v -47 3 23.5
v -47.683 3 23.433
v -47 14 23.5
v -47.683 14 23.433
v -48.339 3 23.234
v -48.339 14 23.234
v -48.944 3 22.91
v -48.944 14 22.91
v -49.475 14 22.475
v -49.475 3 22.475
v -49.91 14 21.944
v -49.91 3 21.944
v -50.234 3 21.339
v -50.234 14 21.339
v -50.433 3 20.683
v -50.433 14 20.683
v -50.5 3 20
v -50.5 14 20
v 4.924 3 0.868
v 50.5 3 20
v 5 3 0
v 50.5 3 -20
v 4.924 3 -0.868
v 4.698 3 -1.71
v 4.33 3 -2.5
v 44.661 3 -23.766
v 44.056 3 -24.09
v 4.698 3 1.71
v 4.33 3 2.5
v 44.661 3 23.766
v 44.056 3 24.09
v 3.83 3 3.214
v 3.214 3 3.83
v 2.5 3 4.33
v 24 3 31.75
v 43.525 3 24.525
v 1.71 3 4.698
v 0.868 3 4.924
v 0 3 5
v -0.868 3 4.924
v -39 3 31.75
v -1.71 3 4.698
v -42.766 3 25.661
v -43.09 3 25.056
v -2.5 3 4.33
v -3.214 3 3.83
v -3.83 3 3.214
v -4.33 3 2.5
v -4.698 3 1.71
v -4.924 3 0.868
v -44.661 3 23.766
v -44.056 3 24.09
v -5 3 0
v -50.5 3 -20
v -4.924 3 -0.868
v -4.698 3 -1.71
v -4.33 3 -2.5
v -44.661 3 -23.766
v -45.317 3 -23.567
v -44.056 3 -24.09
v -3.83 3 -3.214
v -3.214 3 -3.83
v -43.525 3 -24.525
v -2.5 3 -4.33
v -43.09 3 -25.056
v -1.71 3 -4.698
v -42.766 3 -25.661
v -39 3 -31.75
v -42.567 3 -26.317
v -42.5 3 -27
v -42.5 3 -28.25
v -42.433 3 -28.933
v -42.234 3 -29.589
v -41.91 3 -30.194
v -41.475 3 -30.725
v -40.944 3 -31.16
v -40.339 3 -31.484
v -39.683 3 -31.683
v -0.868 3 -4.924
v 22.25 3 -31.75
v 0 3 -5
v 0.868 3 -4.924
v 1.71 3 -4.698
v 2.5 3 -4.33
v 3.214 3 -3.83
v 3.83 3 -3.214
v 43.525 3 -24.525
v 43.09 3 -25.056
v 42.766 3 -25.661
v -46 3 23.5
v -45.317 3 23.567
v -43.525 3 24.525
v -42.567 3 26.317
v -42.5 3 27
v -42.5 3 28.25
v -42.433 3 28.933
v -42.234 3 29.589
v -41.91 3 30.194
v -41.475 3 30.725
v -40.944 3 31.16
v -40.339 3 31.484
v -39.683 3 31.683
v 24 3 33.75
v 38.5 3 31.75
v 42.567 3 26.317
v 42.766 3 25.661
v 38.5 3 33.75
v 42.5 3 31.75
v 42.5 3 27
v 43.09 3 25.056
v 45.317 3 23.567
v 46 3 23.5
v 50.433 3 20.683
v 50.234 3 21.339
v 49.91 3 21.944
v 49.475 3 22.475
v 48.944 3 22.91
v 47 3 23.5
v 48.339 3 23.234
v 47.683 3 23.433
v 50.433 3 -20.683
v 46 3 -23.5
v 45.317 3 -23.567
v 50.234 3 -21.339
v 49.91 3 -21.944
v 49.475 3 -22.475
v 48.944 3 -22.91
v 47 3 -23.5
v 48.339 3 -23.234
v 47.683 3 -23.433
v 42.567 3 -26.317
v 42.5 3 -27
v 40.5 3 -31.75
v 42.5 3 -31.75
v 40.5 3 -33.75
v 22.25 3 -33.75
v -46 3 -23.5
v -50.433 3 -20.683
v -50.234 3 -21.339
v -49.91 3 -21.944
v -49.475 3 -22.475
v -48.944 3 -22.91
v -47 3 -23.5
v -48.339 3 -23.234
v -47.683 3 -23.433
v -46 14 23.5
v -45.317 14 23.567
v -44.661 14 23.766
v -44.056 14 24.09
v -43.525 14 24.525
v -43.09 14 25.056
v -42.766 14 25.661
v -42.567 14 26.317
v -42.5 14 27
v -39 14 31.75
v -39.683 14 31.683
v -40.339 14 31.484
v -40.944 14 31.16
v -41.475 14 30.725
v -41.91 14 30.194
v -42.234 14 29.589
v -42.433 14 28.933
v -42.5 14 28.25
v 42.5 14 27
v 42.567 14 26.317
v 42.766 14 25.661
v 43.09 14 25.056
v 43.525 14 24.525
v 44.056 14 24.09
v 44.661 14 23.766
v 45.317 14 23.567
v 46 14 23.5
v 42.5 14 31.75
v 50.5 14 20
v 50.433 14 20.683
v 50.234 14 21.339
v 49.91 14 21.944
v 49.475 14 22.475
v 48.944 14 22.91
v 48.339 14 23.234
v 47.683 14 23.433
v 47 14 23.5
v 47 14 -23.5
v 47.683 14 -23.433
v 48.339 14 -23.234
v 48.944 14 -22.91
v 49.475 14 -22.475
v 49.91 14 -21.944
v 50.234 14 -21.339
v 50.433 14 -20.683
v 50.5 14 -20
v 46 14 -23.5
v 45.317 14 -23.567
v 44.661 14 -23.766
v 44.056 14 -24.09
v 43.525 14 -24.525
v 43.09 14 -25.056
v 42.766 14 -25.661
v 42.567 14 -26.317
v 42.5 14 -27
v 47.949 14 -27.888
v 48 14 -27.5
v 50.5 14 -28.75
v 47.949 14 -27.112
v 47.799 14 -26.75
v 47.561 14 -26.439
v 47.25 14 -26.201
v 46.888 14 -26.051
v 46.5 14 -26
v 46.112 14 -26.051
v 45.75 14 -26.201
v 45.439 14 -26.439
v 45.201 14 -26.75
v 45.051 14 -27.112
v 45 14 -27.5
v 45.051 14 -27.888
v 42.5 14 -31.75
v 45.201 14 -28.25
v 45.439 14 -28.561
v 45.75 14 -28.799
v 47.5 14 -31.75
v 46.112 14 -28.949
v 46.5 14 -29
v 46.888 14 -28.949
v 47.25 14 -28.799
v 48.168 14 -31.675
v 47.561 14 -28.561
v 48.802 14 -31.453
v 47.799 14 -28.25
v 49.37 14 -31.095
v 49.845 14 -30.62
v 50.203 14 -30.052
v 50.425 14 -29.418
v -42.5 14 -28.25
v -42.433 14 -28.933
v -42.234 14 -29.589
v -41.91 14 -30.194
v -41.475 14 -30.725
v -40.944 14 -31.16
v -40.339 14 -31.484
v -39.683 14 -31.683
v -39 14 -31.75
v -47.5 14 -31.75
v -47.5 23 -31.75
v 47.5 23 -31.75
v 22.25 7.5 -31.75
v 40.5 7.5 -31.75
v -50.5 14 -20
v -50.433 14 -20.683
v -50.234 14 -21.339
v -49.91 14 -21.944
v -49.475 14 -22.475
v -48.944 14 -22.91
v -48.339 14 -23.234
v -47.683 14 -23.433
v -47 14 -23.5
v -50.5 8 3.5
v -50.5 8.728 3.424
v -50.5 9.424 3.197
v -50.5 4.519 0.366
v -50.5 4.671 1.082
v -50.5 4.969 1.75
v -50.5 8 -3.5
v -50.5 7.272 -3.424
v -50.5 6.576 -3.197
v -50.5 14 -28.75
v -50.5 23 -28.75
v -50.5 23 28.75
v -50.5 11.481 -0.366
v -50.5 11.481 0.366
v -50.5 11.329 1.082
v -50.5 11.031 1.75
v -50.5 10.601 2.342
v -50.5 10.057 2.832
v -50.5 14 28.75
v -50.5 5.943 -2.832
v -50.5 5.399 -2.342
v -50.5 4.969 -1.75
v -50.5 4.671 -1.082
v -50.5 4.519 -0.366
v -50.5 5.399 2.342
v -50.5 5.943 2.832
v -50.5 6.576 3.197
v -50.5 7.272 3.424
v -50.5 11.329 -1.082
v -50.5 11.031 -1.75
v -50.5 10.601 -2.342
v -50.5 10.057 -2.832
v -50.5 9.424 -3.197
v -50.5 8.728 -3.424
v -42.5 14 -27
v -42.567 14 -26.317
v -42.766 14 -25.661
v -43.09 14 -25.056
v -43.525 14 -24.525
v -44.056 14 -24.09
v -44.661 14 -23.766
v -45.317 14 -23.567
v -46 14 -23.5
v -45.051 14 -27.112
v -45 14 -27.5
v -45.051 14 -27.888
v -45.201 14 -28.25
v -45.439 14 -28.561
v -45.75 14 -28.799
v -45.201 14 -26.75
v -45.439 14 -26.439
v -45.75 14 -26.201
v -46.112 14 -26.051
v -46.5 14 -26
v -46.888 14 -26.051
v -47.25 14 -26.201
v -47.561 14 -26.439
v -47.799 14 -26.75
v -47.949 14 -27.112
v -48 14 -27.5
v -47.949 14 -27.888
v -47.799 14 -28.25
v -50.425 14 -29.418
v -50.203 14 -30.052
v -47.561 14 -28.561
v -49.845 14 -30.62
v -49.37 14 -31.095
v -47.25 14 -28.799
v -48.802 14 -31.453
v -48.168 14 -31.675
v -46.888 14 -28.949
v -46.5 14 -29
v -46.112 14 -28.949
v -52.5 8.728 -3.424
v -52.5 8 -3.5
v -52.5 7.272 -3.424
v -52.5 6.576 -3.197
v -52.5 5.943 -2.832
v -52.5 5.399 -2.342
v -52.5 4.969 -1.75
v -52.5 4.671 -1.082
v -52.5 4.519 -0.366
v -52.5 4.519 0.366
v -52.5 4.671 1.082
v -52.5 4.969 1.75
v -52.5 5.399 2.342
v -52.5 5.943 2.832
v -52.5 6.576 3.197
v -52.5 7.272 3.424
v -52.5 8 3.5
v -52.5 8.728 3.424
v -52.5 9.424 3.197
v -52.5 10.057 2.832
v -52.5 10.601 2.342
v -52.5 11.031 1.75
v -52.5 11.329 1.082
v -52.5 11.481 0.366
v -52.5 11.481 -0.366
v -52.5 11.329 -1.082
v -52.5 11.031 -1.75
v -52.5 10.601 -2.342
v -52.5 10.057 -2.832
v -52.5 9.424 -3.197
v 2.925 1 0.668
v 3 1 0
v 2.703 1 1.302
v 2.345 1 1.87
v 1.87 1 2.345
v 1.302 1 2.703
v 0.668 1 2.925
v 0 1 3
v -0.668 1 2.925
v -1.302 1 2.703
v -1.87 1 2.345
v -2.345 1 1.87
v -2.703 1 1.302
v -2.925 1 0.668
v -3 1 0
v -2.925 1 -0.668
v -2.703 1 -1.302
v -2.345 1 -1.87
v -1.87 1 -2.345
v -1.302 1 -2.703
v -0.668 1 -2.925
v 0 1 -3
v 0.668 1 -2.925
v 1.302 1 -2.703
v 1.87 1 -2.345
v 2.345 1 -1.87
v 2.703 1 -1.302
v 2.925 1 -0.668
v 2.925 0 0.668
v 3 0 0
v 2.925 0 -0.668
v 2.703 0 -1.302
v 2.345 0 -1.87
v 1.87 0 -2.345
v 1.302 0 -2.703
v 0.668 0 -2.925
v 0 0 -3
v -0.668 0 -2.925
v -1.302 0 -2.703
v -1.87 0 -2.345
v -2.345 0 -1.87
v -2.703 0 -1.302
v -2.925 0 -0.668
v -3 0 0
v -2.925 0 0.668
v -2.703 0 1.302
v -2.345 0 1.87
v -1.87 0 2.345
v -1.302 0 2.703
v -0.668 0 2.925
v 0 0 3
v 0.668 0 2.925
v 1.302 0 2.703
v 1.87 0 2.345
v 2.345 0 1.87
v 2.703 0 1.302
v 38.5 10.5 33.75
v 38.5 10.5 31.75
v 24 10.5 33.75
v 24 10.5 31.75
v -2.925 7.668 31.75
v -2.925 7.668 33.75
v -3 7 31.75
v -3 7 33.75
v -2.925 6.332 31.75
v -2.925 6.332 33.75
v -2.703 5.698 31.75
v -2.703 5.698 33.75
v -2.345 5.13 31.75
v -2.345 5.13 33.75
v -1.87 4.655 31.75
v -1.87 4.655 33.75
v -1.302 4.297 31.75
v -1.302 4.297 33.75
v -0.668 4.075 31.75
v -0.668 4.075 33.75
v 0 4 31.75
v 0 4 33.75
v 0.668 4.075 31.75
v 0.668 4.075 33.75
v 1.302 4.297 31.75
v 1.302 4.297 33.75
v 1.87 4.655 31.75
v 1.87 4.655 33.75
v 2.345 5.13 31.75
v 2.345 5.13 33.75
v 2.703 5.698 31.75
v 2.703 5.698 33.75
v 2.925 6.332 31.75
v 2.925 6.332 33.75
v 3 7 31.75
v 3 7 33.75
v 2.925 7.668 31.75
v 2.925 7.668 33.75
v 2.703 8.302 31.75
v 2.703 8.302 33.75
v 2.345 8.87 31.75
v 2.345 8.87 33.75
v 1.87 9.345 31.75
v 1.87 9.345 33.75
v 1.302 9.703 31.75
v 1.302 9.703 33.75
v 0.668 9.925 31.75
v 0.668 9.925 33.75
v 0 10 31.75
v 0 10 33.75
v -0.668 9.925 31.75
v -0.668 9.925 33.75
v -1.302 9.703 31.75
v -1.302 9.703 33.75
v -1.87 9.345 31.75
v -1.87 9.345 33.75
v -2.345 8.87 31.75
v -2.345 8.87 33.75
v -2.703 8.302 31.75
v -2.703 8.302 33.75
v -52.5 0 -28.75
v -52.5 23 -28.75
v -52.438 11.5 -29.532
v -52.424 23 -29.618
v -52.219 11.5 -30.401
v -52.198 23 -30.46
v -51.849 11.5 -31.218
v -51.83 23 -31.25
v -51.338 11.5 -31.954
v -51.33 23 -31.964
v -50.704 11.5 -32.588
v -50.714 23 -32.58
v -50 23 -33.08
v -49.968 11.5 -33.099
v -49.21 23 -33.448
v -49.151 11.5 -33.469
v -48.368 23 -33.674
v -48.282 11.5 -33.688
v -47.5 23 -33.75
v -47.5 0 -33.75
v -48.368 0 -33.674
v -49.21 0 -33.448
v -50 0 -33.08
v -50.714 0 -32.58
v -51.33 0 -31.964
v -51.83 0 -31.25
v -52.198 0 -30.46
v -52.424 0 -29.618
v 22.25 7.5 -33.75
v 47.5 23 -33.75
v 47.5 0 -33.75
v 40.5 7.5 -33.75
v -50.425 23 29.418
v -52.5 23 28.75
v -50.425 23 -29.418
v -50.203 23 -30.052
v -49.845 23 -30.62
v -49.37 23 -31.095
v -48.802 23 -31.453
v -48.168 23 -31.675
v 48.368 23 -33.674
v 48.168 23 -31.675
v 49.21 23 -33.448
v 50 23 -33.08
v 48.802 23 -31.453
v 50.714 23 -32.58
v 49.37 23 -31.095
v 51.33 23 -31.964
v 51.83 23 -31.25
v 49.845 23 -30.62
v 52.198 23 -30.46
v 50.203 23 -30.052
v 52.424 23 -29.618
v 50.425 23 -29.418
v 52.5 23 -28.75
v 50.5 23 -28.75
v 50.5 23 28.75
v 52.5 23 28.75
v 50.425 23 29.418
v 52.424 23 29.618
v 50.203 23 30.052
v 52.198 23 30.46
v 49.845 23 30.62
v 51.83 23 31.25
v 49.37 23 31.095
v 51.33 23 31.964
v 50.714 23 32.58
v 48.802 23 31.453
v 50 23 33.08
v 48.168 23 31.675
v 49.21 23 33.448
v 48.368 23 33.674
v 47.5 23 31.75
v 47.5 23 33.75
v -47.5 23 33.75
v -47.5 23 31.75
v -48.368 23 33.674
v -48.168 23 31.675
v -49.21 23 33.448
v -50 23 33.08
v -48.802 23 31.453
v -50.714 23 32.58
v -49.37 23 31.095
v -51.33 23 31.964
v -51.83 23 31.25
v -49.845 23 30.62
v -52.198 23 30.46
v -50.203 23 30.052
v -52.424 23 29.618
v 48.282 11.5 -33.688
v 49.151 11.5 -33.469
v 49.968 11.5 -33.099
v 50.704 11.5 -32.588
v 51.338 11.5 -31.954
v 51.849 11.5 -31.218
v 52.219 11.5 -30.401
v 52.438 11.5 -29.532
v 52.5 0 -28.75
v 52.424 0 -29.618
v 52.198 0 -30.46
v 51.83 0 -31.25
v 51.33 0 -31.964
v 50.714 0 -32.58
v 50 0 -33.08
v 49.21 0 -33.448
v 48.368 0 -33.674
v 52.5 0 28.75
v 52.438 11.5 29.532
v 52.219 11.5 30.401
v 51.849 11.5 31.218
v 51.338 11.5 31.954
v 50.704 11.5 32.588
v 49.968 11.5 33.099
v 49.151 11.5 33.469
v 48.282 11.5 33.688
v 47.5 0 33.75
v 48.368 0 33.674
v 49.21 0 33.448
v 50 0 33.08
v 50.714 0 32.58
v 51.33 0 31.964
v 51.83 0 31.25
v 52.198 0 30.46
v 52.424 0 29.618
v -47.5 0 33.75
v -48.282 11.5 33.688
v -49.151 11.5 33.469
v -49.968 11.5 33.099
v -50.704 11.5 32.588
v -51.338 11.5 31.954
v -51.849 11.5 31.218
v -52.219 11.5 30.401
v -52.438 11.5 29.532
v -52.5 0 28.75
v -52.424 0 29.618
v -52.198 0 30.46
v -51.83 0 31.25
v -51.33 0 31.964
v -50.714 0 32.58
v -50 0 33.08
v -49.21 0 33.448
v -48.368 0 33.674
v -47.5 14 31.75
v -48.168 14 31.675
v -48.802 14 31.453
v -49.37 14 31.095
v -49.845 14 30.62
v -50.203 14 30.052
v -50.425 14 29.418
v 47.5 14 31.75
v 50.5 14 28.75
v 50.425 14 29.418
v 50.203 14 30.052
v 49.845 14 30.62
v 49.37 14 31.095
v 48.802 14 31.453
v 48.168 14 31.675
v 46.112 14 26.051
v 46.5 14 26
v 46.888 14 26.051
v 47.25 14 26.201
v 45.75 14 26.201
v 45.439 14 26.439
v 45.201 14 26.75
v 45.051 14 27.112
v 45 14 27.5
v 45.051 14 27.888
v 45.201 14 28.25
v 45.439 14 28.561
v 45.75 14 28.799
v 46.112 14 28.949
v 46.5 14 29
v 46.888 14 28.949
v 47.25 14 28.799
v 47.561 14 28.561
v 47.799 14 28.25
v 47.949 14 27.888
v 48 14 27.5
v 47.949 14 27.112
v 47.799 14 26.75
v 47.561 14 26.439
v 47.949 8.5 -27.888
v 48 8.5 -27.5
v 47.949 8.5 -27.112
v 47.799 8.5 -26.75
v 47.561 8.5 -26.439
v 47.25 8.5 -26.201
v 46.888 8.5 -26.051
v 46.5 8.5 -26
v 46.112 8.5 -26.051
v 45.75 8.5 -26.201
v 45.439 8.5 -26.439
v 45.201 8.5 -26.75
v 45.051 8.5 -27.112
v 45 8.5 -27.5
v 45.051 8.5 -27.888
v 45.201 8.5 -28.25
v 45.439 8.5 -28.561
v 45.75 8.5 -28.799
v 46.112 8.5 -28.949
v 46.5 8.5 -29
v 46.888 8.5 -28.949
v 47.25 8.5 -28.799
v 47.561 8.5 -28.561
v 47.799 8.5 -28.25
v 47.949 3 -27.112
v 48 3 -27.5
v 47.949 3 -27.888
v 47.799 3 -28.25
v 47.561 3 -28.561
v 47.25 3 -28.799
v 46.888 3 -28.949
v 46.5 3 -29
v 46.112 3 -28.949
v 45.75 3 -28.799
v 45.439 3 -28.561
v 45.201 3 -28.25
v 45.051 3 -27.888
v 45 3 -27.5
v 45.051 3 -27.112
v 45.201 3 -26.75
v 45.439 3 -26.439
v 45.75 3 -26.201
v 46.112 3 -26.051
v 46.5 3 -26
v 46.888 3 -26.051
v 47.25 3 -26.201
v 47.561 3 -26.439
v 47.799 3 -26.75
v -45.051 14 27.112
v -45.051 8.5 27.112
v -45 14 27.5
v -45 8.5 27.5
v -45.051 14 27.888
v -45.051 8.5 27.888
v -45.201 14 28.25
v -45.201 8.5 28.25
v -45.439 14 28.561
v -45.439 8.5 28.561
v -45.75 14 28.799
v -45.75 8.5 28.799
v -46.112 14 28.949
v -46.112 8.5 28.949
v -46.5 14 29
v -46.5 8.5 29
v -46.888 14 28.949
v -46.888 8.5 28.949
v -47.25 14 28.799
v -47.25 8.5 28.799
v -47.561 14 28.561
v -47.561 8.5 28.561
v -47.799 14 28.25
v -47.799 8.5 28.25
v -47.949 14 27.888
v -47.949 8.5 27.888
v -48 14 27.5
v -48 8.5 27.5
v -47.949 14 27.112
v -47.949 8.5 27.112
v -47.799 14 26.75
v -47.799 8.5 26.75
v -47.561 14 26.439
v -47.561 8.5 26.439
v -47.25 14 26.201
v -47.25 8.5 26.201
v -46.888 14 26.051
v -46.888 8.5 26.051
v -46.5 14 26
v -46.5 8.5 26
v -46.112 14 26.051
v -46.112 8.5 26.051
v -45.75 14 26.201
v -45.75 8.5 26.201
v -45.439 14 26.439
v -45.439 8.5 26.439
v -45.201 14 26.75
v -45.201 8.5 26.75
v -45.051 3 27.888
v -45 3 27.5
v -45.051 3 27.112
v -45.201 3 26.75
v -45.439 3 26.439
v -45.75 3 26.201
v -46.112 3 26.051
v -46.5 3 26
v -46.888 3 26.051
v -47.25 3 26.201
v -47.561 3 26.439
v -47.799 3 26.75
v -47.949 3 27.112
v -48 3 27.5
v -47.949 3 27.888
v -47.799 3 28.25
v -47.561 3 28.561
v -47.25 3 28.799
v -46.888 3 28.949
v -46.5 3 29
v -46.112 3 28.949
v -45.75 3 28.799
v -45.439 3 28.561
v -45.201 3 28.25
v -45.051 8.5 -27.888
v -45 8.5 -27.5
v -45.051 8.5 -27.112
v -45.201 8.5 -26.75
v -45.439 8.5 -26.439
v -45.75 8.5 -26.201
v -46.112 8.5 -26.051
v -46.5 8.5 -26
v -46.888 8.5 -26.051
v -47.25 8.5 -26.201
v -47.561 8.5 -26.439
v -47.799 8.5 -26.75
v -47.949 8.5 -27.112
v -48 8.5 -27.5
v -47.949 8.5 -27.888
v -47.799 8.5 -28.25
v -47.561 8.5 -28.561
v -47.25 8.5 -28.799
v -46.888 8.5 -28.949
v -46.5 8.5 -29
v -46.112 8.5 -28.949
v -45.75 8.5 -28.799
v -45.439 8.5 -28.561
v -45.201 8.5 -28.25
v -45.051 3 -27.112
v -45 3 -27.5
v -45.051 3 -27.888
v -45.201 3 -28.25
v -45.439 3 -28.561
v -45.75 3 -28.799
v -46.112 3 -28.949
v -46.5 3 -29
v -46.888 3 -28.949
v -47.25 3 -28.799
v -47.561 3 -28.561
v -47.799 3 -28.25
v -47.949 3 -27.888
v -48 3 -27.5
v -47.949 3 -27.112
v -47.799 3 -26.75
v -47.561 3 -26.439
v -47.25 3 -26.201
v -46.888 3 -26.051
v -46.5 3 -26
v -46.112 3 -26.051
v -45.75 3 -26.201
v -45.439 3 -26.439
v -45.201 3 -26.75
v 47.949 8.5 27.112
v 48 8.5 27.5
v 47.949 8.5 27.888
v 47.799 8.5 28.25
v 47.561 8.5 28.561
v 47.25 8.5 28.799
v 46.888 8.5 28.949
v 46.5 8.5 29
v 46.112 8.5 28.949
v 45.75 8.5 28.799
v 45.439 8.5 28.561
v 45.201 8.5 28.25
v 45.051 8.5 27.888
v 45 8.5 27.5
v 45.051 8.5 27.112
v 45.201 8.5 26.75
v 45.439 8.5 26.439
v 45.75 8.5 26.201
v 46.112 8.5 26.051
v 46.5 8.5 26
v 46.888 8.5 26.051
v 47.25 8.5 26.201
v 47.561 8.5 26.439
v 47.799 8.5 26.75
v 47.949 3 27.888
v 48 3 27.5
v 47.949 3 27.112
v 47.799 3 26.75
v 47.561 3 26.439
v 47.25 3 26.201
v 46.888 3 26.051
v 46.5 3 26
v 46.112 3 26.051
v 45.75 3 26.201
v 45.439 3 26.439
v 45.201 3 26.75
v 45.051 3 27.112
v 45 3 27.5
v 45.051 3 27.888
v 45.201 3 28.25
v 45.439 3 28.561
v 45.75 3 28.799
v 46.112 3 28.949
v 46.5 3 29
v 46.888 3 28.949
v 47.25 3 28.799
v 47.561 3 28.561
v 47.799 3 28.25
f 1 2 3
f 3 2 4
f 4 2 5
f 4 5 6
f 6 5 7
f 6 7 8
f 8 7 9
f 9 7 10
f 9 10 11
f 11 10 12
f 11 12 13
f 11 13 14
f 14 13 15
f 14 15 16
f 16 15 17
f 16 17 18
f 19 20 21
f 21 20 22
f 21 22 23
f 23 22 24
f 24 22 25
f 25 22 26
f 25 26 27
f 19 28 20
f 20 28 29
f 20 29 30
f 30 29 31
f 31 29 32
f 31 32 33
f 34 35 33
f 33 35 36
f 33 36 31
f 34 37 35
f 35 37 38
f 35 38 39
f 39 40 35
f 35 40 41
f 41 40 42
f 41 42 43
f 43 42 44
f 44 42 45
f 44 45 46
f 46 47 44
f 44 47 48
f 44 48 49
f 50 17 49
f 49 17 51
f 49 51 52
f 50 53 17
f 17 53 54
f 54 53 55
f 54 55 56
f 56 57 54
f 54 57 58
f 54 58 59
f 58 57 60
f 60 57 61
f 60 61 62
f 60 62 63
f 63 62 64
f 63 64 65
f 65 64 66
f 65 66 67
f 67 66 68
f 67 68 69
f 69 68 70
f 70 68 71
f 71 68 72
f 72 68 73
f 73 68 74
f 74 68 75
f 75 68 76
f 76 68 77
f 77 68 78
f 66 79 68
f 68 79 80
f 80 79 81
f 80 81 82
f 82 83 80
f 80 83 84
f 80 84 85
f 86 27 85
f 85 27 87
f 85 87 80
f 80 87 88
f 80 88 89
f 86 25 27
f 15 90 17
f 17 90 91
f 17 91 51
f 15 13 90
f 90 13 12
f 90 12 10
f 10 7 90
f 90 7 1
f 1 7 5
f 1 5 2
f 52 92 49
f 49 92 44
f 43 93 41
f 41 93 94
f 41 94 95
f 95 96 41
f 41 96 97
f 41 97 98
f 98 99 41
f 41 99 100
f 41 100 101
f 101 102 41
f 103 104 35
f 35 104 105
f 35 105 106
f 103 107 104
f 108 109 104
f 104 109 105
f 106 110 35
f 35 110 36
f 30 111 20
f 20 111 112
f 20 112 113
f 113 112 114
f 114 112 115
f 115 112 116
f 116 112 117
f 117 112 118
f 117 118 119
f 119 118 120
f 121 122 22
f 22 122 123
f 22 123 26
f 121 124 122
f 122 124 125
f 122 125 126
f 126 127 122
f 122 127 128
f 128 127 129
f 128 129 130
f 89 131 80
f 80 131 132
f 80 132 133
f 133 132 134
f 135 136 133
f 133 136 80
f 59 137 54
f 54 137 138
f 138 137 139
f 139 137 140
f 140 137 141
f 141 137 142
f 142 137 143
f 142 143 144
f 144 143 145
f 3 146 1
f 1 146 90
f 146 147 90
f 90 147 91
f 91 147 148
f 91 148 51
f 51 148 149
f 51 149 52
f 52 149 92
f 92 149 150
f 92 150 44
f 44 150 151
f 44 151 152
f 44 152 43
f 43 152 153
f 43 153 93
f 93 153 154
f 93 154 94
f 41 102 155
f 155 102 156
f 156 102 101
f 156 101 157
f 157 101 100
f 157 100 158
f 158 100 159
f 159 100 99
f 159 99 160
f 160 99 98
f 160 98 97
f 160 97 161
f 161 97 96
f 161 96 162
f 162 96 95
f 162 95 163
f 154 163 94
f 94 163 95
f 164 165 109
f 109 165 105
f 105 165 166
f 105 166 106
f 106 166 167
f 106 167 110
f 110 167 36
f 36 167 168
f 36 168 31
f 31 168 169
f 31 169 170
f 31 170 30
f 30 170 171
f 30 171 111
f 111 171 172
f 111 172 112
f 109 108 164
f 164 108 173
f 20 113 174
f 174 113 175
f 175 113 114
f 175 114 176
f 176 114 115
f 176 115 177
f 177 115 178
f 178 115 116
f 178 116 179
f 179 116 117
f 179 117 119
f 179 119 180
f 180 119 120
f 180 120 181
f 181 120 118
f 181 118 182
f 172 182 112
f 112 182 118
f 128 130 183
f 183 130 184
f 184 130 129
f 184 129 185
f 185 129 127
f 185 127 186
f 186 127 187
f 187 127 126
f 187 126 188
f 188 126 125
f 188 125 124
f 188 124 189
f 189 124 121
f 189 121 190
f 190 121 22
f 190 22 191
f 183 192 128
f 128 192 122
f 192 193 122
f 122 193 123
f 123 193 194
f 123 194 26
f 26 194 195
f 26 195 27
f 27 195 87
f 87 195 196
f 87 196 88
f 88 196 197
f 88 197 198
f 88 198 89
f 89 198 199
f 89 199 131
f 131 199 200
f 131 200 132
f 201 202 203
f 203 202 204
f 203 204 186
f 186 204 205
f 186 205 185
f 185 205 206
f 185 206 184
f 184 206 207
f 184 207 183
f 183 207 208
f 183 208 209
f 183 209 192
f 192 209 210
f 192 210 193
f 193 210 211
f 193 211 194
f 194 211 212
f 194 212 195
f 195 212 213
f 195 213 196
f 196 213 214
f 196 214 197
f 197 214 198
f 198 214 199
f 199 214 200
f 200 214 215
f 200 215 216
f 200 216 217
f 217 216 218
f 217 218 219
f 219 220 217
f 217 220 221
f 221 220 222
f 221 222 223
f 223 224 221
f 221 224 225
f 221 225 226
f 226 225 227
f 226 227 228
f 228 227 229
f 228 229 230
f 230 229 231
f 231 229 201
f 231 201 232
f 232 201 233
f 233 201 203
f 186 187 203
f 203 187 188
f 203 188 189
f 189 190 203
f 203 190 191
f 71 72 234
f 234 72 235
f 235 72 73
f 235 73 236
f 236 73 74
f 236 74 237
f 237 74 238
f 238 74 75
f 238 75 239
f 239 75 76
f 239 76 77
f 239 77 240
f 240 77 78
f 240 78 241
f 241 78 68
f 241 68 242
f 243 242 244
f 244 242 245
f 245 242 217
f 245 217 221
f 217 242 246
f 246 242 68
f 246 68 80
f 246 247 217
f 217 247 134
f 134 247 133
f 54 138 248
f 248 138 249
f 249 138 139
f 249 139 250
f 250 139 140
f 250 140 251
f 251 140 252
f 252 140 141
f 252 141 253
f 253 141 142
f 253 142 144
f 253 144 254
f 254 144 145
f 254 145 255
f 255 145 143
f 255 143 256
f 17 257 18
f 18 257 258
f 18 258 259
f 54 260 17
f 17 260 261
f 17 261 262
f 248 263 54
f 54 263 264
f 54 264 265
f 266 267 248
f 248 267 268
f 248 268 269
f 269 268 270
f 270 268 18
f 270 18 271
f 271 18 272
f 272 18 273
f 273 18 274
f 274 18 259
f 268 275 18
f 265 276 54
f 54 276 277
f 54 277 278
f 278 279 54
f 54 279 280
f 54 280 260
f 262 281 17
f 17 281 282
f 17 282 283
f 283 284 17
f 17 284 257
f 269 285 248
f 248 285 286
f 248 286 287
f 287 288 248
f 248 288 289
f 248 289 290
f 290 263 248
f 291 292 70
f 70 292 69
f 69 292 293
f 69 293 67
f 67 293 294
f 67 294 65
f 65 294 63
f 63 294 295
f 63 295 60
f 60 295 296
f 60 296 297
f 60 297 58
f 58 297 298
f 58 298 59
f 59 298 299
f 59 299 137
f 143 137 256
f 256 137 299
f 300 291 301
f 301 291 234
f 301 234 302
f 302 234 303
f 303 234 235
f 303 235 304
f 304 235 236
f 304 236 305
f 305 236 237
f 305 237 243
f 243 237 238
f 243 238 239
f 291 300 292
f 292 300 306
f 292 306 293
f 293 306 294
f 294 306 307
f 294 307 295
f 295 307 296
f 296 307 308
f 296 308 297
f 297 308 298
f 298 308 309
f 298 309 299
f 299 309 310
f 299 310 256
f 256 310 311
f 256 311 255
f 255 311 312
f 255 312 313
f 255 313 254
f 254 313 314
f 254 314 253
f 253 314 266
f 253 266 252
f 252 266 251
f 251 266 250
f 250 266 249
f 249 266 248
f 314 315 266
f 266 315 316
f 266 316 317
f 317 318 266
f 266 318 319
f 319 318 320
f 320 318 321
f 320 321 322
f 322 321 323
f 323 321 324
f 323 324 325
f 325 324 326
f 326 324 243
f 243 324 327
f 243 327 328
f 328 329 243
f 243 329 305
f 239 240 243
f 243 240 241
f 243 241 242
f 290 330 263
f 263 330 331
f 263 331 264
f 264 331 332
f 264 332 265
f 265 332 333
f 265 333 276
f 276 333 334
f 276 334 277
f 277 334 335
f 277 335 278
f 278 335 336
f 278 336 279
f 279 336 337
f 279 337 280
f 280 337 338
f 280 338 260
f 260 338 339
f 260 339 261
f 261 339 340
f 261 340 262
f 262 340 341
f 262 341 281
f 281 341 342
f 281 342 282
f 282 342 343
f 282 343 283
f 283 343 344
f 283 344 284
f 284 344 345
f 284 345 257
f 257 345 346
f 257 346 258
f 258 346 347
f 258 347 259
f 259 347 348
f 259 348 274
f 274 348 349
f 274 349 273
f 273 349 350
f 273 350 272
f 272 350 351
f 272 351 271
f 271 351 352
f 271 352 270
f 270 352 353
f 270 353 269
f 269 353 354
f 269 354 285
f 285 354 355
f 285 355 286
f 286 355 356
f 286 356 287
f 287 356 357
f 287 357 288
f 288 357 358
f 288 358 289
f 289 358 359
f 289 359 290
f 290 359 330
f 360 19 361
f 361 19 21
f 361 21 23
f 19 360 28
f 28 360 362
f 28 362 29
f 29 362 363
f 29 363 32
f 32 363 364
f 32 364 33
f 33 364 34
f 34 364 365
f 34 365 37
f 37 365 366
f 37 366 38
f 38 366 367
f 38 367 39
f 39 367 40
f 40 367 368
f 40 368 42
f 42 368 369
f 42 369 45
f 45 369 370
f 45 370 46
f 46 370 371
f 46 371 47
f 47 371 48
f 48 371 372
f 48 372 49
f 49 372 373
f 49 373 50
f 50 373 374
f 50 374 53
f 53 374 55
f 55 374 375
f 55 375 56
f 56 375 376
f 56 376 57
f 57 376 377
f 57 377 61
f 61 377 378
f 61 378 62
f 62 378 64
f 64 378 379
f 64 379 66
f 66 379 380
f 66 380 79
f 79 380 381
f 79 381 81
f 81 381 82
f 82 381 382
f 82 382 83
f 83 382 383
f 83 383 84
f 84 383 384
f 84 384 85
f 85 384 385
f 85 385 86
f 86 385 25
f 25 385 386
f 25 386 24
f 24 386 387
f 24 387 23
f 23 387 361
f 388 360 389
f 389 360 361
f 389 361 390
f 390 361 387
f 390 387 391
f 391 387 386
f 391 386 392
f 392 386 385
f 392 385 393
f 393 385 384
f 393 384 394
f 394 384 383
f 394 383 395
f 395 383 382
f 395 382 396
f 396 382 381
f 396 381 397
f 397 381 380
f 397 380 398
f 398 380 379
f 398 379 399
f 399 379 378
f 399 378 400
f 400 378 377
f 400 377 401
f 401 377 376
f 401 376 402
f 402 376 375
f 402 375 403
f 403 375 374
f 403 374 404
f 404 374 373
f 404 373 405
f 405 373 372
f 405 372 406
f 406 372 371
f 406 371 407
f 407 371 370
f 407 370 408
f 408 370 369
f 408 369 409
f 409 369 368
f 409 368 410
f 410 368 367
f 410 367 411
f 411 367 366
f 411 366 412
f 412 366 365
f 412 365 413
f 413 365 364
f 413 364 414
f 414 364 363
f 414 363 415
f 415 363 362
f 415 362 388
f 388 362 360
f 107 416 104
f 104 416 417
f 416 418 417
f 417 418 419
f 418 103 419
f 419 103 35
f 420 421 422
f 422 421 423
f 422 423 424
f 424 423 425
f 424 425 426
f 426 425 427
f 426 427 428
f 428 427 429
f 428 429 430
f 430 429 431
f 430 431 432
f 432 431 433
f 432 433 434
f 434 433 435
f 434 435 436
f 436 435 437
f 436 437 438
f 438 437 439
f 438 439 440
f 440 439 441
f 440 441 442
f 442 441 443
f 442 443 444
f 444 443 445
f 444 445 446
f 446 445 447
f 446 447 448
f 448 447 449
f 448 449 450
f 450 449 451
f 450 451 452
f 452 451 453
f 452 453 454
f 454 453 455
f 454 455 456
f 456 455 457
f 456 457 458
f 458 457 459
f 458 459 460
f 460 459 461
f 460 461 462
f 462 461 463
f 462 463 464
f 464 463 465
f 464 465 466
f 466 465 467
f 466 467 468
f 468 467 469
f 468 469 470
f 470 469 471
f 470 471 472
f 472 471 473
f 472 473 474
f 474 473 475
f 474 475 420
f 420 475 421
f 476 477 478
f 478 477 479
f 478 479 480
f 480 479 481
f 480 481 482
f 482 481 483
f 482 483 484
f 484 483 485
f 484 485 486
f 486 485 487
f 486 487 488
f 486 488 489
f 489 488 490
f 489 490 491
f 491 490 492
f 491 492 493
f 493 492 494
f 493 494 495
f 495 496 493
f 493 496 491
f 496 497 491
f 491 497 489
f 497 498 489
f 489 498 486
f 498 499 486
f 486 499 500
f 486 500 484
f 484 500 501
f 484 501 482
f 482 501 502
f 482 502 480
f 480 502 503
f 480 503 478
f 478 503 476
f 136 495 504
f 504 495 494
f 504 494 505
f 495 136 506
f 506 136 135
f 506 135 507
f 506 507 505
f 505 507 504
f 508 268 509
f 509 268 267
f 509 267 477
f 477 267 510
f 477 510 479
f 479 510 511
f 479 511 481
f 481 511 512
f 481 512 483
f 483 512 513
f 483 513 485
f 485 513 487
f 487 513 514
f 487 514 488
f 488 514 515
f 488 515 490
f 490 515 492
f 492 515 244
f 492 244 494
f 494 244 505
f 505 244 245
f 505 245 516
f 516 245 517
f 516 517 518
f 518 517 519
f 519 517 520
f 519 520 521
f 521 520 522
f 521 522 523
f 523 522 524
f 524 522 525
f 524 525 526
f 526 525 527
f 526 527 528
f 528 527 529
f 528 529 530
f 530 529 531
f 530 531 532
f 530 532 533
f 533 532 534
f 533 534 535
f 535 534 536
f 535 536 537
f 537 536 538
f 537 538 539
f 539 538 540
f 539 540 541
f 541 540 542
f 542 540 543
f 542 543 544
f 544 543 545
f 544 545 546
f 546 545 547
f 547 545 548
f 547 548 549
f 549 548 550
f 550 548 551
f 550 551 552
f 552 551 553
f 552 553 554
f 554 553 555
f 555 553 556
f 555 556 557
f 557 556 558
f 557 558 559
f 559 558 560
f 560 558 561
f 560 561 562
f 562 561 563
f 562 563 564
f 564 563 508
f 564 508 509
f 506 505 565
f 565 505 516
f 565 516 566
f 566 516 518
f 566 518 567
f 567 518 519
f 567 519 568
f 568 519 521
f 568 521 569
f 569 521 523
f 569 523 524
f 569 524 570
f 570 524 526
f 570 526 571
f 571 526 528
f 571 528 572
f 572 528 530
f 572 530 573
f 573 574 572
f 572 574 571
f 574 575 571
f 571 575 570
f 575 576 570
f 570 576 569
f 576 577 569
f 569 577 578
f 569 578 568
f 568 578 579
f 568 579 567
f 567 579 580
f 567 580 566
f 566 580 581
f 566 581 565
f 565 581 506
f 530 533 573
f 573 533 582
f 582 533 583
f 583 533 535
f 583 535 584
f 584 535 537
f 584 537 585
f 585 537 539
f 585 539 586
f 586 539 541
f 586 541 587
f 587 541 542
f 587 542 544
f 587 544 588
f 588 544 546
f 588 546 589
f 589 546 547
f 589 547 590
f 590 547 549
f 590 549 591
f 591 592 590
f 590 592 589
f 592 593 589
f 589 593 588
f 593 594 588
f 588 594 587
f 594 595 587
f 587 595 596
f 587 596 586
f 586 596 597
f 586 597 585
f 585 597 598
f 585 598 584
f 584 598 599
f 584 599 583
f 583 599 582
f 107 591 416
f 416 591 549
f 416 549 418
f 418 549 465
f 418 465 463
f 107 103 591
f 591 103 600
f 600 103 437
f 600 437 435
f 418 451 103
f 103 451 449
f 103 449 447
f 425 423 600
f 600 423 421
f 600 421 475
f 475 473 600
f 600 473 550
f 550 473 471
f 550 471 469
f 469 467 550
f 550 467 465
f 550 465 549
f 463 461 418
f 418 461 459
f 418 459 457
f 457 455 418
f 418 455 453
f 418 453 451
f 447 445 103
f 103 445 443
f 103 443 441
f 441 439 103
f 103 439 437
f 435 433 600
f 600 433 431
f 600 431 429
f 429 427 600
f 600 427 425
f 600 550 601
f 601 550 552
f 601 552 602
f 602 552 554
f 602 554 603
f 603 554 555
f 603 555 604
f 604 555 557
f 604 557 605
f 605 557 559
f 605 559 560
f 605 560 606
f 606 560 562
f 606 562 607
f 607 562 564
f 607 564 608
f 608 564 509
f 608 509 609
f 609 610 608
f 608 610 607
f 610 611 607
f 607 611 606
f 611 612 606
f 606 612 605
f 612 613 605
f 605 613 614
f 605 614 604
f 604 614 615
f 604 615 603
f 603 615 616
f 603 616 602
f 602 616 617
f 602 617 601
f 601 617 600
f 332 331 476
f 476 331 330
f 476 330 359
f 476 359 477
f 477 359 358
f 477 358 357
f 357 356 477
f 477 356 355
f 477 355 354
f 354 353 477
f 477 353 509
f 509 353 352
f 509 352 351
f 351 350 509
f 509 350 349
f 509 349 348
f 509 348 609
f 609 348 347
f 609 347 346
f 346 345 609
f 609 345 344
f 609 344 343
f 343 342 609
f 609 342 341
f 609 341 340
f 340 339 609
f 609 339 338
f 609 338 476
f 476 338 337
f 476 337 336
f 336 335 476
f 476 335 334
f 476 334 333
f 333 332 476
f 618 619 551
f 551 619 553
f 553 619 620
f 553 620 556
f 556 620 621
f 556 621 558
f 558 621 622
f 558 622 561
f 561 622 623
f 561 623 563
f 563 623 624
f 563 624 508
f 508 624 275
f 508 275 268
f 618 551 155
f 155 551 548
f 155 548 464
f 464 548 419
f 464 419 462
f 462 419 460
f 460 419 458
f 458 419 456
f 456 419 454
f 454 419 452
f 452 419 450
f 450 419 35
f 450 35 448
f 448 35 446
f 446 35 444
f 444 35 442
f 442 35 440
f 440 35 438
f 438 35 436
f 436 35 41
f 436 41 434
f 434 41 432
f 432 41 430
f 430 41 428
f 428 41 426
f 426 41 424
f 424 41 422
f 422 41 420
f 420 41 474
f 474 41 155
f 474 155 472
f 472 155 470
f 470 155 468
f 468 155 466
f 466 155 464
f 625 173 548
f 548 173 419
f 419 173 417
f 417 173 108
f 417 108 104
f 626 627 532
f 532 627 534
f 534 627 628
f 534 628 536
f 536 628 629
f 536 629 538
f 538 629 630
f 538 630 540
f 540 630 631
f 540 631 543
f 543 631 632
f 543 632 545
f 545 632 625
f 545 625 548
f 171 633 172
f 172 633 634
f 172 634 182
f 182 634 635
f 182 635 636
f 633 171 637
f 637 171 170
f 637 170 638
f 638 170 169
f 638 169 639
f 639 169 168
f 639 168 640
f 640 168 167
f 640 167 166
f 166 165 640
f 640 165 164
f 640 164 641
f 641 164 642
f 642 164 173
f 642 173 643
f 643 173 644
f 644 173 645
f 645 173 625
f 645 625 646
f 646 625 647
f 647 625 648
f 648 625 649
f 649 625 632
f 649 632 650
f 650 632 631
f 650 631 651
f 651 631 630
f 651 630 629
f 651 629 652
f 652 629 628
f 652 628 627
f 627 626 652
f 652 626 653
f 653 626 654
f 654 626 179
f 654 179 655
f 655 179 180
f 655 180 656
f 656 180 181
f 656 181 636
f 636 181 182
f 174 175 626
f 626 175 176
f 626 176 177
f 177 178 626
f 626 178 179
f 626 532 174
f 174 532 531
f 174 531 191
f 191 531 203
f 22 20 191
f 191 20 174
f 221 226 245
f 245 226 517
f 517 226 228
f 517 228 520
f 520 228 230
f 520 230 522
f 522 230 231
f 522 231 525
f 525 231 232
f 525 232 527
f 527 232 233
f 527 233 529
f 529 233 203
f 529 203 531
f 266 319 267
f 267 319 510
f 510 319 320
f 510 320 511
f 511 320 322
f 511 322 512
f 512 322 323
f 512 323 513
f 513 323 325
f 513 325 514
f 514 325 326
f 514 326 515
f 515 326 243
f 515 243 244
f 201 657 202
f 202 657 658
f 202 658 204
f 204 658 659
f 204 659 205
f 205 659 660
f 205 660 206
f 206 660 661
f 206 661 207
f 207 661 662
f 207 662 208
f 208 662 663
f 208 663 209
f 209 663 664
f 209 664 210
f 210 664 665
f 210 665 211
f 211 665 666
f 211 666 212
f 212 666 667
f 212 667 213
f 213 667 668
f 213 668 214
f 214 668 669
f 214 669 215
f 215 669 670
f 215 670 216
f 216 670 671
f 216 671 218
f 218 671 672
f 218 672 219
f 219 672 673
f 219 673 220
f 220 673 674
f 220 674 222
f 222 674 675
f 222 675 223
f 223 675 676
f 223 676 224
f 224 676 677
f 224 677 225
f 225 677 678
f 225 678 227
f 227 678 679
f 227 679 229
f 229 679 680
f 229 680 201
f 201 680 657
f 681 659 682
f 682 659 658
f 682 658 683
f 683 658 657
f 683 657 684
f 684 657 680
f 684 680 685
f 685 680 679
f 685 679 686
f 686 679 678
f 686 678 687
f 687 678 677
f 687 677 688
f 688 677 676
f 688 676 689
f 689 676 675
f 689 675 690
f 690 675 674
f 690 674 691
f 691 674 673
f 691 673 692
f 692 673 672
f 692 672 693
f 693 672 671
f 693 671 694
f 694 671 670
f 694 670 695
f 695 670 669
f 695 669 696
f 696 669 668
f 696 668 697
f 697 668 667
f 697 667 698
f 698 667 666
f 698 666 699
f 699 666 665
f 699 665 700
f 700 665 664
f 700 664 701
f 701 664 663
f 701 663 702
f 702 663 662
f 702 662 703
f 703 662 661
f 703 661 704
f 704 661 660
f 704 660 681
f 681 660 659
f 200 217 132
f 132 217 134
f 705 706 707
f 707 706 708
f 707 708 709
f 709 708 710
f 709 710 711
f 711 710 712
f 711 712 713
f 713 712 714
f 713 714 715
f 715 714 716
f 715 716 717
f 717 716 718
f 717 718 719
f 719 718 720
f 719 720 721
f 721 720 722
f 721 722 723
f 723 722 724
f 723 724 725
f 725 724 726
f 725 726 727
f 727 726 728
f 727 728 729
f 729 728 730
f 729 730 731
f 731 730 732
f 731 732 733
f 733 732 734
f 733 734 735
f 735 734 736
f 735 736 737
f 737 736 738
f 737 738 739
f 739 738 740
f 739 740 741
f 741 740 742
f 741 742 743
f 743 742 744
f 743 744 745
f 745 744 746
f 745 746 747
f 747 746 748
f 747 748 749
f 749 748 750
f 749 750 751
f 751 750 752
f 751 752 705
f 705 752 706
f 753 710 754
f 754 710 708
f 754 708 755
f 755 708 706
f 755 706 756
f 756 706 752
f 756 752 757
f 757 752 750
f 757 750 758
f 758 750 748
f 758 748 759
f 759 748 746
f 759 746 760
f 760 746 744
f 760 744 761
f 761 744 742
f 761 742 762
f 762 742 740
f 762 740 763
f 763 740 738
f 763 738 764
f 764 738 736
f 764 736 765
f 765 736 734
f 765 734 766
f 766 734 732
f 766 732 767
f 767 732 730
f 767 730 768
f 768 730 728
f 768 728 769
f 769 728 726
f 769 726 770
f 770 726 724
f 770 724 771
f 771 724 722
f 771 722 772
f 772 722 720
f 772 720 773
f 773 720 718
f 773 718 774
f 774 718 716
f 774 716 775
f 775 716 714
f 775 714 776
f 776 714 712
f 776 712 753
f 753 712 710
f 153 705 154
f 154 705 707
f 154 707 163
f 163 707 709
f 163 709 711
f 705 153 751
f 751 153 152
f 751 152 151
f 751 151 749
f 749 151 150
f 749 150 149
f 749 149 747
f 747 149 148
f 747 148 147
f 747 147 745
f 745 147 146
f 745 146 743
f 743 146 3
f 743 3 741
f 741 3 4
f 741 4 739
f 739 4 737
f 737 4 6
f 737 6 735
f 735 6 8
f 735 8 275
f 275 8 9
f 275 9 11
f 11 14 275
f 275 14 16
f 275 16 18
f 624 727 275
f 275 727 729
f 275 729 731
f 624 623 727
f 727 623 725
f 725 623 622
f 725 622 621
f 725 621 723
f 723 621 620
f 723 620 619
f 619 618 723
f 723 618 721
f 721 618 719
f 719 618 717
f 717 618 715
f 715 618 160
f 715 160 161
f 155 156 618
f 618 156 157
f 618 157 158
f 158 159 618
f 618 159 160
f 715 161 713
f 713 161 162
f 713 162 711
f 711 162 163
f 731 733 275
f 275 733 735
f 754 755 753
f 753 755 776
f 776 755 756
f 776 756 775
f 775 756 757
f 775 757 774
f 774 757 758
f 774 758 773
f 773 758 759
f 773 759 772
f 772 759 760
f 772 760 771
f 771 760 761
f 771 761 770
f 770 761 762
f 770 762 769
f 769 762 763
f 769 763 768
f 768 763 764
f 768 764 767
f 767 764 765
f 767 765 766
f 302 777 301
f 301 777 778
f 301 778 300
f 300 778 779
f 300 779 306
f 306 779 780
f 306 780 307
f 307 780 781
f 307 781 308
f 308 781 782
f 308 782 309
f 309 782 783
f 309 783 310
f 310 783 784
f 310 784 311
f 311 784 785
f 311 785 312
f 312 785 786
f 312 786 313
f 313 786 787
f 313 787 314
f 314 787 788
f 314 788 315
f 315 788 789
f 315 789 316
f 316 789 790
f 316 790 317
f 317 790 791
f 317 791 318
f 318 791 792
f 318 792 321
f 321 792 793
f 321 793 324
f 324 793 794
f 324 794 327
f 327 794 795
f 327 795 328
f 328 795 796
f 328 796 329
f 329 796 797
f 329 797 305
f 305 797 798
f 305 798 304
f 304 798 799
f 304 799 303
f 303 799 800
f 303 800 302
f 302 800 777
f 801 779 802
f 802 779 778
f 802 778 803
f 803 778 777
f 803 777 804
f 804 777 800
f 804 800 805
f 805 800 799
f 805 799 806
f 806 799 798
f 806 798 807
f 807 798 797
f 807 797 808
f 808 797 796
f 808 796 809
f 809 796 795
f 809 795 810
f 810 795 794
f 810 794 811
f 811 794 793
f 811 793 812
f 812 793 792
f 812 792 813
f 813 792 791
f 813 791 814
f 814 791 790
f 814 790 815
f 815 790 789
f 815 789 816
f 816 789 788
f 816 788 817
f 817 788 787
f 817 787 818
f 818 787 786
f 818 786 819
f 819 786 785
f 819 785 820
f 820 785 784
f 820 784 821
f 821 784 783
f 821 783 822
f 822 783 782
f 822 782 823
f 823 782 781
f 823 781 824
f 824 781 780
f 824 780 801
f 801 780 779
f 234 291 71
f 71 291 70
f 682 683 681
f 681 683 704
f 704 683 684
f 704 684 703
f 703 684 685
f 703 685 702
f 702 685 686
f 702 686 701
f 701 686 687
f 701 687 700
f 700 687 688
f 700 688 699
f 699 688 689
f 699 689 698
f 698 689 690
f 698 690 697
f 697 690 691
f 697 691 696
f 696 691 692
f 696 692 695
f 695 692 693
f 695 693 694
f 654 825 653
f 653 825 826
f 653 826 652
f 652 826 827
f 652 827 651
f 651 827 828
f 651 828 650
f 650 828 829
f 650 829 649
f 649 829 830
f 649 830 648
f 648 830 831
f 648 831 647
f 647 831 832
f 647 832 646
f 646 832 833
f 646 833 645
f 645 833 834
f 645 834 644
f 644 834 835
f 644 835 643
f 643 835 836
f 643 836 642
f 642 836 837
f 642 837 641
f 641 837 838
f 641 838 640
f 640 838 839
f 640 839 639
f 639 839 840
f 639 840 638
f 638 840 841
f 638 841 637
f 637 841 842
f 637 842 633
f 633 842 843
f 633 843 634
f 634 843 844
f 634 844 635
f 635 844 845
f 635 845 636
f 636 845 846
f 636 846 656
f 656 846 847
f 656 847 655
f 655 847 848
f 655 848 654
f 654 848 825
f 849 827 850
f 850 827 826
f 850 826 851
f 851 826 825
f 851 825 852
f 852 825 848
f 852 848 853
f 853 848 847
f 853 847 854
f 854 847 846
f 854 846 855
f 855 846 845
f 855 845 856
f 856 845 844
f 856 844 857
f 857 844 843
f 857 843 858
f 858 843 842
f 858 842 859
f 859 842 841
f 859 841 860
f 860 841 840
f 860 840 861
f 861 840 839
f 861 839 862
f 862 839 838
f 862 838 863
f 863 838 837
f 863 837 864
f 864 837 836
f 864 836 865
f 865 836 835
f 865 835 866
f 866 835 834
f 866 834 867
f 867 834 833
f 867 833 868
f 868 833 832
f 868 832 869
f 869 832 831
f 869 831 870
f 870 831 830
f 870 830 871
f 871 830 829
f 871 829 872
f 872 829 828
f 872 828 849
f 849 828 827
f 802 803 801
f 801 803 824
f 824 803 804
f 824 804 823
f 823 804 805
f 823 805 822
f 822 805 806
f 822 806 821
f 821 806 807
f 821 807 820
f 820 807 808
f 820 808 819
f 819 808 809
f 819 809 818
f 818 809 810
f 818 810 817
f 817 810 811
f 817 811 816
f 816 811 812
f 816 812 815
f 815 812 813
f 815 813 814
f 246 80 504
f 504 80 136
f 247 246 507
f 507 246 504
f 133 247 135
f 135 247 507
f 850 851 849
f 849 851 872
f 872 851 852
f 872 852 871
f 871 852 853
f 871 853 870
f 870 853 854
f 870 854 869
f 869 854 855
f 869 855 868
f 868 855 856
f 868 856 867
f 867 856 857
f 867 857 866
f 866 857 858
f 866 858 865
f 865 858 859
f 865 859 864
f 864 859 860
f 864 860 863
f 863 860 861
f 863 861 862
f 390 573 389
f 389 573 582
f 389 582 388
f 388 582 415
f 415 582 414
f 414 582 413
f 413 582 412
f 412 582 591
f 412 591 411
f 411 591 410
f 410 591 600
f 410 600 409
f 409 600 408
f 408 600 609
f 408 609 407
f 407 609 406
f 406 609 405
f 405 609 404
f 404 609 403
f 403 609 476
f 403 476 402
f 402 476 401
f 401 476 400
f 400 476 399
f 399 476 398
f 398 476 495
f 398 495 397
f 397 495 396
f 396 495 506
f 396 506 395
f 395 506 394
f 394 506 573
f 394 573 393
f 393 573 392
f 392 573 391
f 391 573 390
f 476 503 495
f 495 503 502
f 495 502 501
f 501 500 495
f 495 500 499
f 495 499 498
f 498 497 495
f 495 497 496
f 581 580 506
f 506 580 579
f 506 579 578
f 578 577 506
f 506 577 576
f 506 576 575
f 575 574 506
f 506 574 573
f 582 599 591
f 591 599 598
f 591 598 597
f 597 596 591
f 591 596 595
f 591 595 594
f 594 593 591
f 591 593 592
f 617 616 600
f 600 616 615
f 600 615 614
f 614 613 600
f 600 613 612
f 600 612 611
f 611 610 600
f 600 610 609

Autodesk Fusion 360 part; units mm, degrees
sketch "Sketch1" plane through (0, 0, 0) normal (0, 1, 0) x (1, 0, 0)
  line L0 (-52.5, 33.75) -> (52.5, 33.75)
  line L1 (52.5, 33.75) -> (52.5, -33.75)
  line L2 (52.5, -33.75) -> (-52.5, -33.75)
  line L3 (-52.5, -33.75) -> (-52.5, 33.75)
  line L4 (-52.5, 33.75) -> (52.5, -33.75) construction
  dimension "d1" = 105
  dimension "d2" = 67.5
extrude "Extrude1" add sketch "Sketch1" along normal blind 3
sketch "Sketch2" plane through (0, 3, 0) normal (0, 1, 0) x (-1, 0, 0)
  line L0 (52.5, 33.75) -> (-52.5, 33.75)
  line L1 (-52.5, 33.75) -> (-52.5, -33.75)
  line L2 (-52.5, -33.75) -> (52.5, -33.75)
  line L3 (52.5, -33.75) -> (52.5, 33.75)
  line L4 (50.5, 31.75) -> (-50.5, 31.75)
  line L5 (-50.5, 31.75) -> (-50.5, -31.75)
  line L6 (-50.5, -31.75) -> (50.5, -31.75)
  line L7 (50.5, -31.75) -> (50.5, 31.75)
  dimension "d5" = -2
extrude "Extrude2" add sketch "Sketch2" along normal blind 20
sketch "Sketch3" plane through (0, 0, -33.75) normal (0, 0, -1) x (-1, 0, 0)
  line L0 (-52.5, 0) -> (52.5, 0)
  line L1 (52.5, 0) -> (52.5, 23)
  line L2 (52.5, 23) -> (-52.5, 23)
  line L3 (-52.5, 23) -> (-52.5, 0)
  line L4 (-40.5, 7.5) -> (-22.25, 7.5)
  line L5 (-22.25, 7.5) -> (-22.25, 3)
  line L6 (-22.25, 3) -> (-40.5, 3)
  line L7 (-40.5, 3) -> (-40.5, 7.5)
  dimension "d21" = 18.25
  dimension "d22" = 4.5
  dimension "d23" = 3
  dimension "d24" = 40.5
extrude "Extrude3" cut sketch "Sketch3" against normal blind 3 contours L4 L5 L6 L7
sketch "Sketch4" plane through (0, 3, 0) normal (0, 1, 0) x (-1, 0, 0)
  line L0 (-22.25, -31.75) -> (50.5, -31.75)
  line L1 (50.5, -31.75) -> (50.5, 31.75)
  line L2 (50.5, 31.75) -> (-50.5, 31.75)
  line L3 (-50.5, 31.75) -> (-50.5, -31.75)
  line L4 (-50.5, -31.75) -> (-40.5, -31.75)
  line L5 (-40.5, -31.75) -> (-40.5, -33.75)
  line L6 (-40.5, -33.75) -> (-22.25, -33.75)
  line L7 (-22.25, -33.75) -> (-22.25, -31.75)
  line L8 (46.5, -27.5) -> (-46.5, -27.5) construction
  line L9 (-46.5, -27.5) -> (-46.5, 27.5) construction
  line L10 (-46.5, 27.5) -> (46.5, 27.5) construction
  line L11 (46.5, 27.5) -> (46.5, -27.5) construction
  line L12 (46.5, -27.5) -> (-46.5, 27.5) construction
  circle A0 centre (46.5, -27.5) radius 1.5
  line L13 (50.5, -23.5) -> (42.5, -23.5)
  line L14 (42.5, -23.5) -> (42.5, -31.75)
  line L15 (50.5, 0) -> (-50.5, 0) construction
  line L16 (50.5, 23.5) -> (42.5, 23.5)
  line L17 (42.5, 23.5) -> (42.5, 31.75)
  circle A1 centre (46.5, 27.5) radius 1.5
  line L18 (0, -27.5) -> (0, 27.5) construction
  line L19 (-42.5, -23.5) -> (-42.5, -31.75)
  line L20 (-50.5, -23.5) -> (-42.5, -23.5)
  circle A2 centre (-46.5, -27.5) radius 1.5
  circle A3 centre (-46.5, 27.5) radius 1.5
  line L21 (-50.5, 23.5) -> (-42.5, 23.5)
  line L22 (-42.5, 23.5) -> (-42.5, 31.75)
  dimension "d33" = 93
  dimension "d34" = 55
  dimension "d35" = 3
  dimension "d36" = 4
  dimension "d37" = 4
extrude "Extrude4" add sketch "Sketch4" along normal blind 11 contours L0 L1 L13 L14 | L1 L2 L16 L17 | L3 L4 L19 L20 | L2 L3 L21 L22
fillet "Fillet1" radius 3 4 edges at (-50.5, 18.5, -31.75) (50.5, 18.5, -31.75) (50.5, 18.5, 31.75) (-50.5, 18.5, 31.75)
fillet "Fillet2" radius 5 4 edges at (-52.5, 11.5, 33.75) (52.5, 11.5, 33.75) (52.5, 11.5, -33.75) (-52.5, 11.5, -33.75)
sketch "Sketch5" plane through (0, 0, 33.75) normal (0, 0, 1) x (1, 0, 0)
  line L0 (47.5, 0) -> (47.5, 23)
  line L1 (47.5, 23) -> (-47.5, 23)
  line L2 (-47.5, 23) -> (-47.5, 0)
  line L3 (-47.5, 0) -> (47.5, 0)
  circle A0 centre (0, 7) radius 3
  line L4 (0, 7) -> (0, 0) construction
  dimension "d58" = 6
  dimension "d59" = 7
extrude "Extrude5" cut sketch "Sketch5" against normal blind 3 contours A0
sketch "Sketch6" plane through (0, 0, 33.75) normal (0, 0, 1) x (1, 0, 0)
  circle A0 centre (0, 7) radius 3
  line L0 (47.5, 0) -> (47.5, 23)
  line L1 (47.5, 23) -> (-47.5, 23)
  line L2 (-47.5, 23) -> (-47.5, 0)
  line L3 (-47.5, 0) -> (47.5, 0)
  line L4 (24, 10.5) -> (38.5, 10.5)
  line L5 (38.5, 10.5) -> (38.5, 3)
  line L6 (38.5, 3) -> (24, 3)
  line L7 (24, 3) -> (24, 10.5)
  dimension "d62" = 3
  dimension "d63" = 24
  dimension "d64" = 14.5
  dimension "d65" = 7.5
extrude "Extrude6" cut sketch "Sketch6" against normal blind 2 contours L4 L5 L6 L7
sketch "Sketch8" plane through (0, 3, 0) normal (0, 1, 0) x (-1, 0, 0)
  line L0 (-50.5, -23.5) -> (-42.5, -23.5)
  line L1 (-42.5, -23.5) -> (-42.5, -31.75)
  line L2 (-42.5, -31.75) -> (-40.5, -31.75)
  line L3 (-40.5, -31.75) -> (-40.5, -33.75)
  line L4 (-40.5, -33.75) -> (-22.25, -33.75)
  line L5 (-22.25, -33.75) -> (-22.25, -31.75)
  line L6 (-22.25, -31.75) -> (42.5, -31.75)
  line L7 (42.5, -31.75) -> (42.5, -23.5)
  line L8 (42.5, -23.5) -> (50.5, -23.5)
  line L9 (50.5, -23.5) -> (50.5, 23.5)
  line L10 (50.5, 23.5) -> (42.5, 23.5)
  line L11 (42.5, 23.5) -> (42.5, 31.75)
  line L12 (42.5, 31.75) -> (-24, 31.75)
  line L13 (-24, 31.75) -> (-24, 33.75)
  line L14 (-24, 33.75) -> (-38.5, 33.75)
  line L15 (-38.5, 33.75) -> (-38.5, 31.75)
  line L16 (-38.5, 31.75) -> (-42.5, 31.75)
  line L17 (-42.5, 31.75) -> (-42.5, 23.5)
  line L18 (-42.5, 23.5) -> (-50.5, 23.5)
  line L19 (-50.5, 23.5) -> (-50.5, -23.5)
  circle A0 centre (0, 0) radius 3
  dimension "d73" = 6
extrude "Extrude8" cut sketch "Sketch8" against normal blind 6 contours A0
chamfer "Chamfer1" distance 2 angle 45 1 edges at (2.797, 3, 1.0848)
sketch "Sketch9" plane through (-52.5, 0, 0) normal (-1, 0, 0) x (0, 0, 1)
  line L0 (-28.75, 23) -> (-28.75, 0)
  line L1 (-28.75, 0) -> (28.75, 0)
  line L2 (28.75, 0) -> (28.75, 23)
  line L3 (28.75, 23) -> (-28.75, 23)
  circle A0 centre (0, 8) radius 3.5
  line L4 (0, 8) -> (0, 0) construction
  dimension "d77" = 7
  dimension "d78" = 8
extrude "Extrude9" cut sketch "Sketch9" against normal blind 2 contours A0
fillet "Fillet3" radius 3.5 10 edges at (-42.5, 8.5, -23.5) (-50.5, 8.5, -23.5) (-42.5, 8.5, -31.75) (42.5, 8.5, -23.5) (50.5, 8.5, -23.5) (50.5, 8.5, 23.5) (42.5, 8.5, 23.5) (-42.5, 8.5, 31.75) (-42.5, 8.5, 23.5) (-50.5, 8.5, 23.5)
